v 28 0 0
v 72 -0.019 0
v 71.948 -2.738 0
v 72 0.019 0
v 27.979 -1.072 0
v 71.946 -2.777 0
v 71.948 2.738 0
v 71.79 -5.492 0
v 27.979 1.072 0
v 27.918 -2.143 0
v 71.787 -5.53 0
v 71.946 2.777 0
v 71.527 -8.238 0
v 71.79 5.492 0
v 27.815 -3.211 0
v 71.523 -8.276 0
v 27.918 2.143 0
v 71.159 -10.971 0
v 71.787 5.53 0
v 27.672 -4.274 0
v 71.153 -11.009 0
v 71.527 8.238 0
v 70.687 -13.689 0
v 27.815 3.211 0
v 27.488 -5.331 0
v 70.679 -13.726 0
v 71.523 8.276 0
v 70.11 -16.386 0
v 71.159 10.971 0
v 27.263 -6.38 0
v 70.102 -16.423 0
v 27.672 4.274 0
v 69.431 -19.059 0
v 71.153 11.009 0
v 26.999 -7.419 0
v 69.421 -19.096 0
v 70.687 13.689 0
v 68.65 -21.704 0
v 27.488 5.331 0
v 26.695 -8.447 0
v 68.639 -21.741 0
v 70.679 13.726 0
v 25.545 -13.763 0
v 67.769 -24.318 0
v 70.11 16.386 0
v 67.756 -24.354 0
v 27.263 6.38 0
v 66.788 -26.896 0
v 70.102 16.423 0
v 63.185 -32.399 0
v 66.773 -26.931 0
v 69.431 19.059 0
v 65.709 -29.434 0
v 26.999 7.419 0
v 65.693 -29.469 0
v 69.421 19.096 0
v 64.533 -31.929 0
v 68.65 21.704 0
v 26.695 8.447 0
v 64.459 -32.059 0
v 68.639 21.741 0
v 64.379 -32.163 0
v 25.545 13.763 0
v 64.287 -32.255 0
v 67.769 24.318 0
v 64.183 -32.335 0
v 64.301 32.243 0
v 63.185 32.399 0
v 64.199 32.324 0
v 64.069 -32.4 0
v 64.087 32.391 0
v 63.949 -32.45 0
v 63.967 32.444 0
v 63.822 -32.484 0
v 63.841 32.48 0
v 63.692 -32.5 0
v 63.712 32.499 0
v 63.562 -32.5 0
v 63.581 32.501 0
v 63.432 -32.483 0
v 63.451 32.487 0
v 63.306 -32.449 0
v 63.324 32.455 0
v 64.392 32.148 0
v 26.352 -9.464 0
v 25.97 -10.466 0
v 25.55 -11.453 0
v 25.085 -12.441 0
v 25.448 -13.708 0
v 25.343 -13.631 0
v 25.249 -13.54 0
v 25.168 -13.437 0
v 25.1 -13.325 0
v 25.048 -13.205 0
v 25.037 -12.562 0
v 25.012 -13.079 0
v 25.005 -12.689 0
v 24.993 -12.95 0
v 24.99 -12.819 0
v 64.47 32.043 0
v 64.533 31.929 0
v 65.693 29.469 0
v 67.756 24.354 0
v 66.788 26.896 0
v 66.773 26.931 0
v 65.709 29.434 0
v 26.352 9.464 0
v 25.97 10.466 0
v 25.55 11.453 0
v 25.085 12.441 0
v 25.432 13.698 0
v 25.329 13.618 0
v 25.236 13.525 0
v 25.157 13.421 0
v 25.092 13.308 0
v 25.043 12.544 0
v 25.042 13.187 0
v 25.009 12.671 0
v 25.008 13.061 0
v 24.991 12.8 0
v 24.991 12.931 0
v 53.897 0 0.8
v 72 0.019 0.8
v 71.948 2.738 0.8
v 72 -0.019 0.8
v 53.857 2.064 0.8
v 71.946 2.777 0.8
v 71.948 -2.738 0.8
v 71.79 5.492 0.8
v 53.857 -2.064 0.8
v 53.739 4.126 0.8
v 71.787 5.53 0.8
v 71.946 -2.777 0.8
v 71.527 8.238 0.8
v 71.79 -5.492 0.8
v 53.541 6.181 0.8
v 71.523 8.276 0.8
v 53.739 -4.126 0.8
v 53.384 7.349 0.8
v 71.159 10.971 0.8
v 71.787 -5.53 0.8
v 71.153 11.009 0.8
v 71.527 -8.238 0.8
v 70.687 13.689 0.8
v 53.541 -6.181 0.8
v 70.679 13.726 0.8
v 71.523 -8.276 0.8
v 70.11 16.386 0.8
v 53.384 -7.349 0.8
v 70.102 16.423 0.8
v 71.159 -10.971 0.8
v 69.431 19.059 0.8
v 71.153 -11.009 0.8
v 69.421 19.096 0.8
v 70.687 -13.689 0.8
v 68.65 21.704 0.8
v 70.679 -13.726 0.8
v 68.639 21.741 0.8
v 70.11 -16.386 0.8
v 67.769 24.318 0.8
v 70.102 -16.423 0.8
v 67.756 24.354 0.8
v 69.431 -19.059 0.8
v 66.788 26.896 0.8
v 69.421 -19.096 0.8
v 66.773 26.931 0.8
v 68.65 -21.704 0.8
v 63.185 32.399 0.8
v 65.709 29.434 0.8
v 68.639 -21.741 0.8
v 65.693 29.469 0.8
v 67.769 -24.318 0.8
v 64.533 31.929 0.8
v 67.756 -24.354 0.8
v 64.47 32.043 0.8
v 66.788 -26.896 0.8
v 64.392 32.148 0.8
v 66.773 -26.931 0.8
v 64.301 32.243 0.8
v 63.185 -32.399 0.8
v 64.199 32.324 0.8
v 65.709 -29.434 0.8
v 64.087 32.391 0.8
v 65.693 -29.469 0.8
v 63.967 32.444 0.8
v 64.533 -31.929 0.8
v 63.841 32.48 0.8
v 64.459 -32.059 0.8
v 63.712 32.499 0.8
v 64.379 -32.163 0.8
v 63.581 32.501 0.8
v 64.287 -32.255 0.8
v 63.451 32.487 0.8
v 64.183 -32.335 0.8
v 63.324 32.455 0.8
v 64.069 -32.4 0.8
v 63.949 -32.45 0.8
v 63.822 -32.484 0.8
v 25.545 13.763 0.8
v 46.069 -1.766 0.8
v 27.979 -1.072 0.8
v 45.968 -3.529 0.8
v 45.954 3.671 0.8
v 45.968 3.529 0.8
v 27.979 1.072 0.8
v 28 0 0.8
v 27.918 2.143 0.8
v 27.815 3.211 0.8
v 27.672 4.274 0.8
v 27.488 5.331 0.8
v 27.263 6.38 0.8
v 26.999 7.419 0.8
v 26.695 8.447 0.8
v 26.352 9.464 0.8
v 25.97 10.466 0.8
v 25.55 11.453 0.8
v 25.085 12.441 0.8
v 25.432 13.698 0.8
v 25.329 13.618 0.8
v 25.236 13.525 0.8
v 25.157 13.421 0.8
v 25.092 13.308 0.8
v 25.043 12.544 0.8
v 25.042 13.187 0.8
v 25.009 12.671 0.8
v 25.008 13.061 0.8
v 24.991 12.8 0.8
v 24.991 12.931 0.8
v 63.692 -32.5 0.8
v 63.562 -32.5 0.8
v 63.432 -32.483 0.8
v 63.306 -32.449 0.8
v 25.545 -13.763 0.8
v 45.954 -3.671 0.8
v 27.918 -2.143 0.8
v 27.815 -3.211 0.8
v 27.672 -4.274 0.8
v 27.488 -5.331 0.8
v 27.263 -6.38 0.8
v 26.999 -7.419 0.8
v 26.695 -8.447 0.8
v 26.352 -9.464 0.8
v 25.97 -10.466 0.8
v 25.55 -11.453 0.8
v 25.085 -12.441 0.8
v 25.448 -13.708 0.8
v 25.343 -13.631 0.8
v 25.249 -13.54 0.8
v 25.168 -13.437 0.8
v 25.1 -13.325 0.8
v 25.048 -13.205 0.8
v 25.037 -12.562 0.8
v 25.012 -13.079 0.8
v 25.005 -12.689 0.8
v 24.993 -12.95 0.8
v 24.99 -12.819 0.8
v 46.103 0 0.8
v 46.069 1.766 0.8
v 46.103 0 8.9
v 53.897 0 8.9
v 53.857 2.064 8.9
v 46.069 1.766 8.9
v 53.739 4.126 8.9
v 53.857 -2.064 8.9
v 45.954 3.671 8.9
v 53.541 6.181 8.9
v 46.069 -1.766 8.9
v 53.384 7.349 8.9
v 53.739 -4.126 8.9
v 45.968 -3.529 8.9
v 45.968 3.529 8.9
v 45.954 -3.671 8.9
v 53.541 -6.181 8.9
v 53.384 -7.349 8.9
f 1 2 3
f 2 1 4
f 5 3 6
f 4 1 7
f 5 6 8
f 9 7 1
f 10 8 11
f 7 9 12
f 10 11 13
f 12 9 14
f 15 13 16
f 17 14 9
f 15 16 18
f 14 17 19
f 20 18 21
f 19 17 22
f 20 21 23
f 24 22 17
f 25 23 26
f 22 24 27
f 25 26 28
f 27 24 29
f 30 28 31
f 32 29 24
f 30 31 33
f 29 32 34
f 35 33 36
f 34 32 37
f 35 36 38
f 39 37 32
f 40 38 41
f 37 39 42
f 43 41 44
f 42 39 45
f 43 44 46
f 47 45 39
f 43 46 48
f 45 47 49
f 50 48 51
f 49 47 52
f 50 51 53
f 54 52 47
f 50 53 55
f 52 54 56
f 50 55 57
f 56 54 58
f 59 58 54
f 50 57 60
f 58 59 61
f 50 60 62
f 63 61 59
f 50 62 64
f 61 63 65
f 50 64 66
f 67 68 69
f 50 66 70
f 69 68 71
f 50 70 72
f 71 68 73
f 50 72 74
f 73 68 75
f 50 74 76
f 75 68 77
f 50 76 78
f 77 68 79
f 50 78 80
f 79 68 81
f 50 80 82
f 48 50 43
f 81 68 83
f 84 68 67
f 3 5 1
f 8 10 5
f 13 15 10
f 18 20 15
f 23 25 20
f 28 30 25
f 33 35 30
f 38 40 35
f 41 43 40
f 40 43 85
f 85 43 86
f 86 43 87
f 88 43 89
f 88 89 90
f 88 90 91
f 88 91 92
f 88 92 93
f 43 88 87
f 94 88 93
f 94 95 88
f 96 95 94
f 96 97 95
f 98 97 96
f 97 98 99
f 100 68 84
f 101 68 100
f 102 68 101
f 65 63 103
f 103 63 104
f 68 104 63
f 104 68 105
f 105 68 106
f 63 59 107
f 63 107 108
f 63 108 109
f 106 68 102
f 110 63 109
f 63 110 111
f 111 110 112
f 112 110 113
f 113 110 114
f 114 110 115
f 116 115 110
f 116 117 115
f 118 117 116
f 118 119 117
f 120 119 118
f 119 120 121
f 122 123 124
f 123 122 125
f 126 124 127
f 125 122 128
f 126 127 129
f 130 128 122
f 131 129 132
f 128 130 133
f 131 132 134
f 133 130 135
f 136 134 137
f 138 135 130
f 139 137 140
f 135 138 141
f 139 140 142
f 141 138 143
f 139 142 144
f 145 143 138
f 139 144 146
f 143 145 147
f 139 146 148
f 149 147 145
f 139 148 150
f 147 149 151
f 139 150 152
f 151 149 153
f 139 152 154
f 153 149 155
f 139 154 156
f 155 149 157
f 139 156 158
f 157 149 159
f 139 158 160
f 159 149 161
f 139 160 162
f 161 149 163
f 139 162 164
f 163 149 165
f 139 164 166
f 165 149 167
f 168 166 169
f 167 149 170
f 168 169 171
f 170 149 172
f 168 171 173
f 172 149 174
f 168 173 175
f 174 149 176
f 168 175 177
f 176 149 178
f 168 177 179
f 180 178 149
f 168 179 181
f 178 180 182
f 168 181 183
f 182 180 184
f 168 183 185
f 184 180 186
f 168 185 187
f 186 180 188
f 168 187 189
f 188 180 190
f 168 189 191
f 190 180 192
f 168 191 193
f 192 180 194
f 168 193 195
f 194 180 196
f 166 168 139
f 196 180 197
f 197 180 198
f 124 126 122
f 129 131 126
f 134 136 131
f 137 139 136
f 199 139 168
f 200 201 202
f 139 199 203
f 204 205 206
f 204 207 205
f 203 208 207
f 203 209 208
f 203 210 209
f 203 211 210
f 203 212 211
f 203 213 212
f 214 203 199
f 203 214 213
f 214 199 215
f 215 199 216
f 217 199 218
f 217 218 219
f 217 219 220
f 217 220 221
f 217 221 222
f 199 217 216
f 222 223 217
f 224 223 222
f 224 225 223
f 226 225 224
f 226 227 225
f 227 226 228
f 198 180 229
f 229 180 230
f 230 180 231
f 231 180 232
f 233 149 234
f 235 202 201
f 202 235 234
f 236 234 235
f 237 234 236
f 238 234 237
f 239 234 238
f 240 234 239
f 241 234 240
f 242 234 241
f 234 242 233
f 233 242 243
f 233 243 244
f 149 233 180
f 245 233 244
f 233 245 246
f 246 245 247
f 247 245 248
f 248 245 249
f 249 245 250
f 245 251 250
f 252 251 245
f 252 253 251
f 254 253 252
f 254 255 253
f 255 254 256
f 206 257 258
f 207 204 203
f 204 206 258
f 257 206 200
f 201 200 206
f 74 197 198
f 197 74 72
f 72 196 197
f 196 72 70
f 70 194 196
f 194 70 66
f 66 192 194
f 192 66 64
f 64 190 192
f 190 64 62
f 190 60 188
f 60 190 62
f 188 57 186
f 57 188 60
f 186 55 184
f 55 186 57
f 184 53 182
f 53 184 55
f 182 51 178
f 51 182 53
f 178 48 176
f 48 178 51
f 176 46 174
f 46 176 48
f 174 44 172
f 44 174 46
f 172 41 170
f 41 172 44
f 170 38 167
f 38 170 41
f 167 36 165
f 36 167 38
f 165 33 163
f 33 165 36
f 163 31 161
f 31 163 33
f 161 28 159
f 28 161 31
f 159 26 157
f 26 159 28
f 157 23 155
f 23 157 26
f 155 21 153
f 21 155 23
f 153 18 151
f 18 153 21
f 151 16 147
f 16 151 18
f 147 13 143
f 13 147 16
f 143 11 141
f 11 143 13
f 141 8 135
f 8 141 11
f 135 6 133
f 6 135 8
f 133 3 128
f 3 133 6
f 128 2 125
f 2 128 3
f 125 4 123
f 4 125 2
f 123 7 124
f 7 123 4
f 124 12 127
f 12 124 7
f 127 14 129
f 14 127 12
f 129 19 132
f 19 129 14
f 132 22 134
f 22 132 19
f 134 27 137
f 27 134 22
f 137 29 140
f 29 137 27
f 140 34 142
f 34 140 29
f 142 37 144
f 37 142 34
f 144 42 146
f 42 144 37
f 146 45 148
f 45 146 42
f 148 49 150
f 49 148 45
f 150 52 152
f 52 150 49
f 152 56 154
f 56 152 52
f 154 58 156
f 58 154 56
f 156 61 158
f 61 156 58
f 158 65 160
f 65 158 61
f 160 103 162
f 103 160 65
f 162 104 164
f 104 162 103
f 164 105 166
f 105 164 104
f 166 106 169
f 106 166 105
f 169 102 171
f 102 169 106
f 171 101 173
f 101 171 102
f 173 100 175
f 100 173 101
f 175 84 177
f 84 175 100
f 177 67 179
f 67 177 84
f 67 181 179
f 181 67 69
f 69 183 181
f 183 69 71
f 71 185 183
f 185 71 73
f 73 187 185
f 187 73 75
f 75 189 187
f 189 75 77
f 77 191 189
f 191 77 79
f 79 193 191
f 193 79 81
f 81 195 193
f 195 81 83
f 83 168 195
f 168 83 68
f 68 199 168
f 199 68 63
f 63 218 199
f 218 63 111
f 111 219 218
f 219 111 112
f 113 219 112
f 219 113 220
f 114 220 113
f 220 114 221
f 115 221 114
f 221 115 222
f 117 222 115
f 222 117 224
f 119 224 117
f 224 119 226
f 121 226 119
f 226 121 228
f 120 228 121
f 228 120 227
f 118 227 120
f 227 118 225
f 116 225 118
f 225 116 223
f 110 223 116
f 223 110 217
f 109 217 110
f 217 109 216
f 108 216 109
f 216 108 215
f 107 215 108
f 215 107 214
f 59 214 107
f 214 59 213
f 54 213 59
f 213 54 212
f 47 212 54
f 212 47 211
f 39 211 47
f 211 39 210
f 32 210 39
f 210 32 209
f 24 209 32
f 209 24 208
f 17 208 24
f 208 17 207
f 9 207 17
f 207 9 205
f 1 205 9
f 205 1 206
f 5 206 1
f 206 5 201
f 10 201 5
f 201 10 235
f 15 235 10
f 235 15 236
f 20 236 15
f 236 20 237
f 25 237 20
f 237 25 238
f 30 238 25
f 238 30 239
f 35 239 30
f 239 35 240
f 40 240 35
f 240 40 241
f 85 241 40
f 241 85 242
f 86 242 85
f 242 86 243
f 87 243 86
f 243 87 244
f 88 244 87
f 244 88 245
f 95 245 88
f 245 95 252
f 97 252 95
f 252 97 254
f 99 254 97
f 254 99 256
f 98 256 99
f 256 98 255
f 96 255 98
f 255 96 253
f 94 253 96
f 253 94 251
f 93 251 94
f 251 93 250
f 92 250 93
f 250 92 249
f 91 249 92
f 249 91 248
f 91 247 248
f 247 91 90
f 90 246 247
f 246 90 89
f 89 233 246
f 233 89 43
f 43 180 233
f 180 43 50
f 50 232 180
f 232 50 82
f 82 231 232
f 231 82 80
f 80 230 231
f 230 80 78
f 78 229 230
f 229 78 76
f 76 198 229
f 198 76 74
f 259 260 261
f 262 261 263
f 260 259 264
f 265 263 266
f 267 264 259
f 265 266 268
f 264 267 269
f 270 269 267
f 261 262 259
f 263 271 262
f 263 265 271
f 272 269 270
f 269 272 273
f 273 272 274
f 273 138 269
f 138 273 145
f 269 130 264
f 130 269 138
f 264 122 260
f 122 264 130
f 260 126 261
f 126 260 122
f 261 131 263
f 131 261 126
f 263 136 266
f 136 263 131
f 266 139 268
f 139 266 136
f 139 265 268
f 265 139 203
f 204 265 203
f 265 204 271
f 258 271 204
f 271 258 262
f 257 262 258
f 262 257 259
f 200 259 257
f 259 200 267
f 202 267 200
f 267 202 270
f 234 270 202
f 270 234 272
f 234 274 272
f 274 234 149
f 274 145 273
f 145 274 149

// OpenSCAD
// file: parameters.scad
// =============================================================================
// Gen-BP — nightly 2026-10-07 (physics_scorer, honest magpylib watts)
// Cheapest upgrade of the champion: keep Gen-BL's wound bobbins, stator, gap sleeve, endbells and Ø134 steel, and print only two new rotor carriers — 5.00 mm thick (flush magnet seat, recess 0 instead of 0.10 mm, magnet→wound envelope still 0.50 mm) with the diametric Ø5 assists moved from R40/50/60 to R43/50/57. Modular: the rotor is the only swapped module.
// Clocking 0 deg (magnets N facing S) + D-flat keyed bore + index notch + flip-symmetric hole map.
// Windable 2-piece bobbin; turns = physics_scorer turns_fit; copper only between flanges.
// Steel back-iron: 2× Ø134 × 4.76 mm (3/16") mild-steel discs (steel_backiron_disc.dxf); magnets sit ON the steel
// (through-pockets) -> score with --back-iron.
// =============================================================================
topology            = "dual_rotor";

// --- Wire / winding (physics_scorer winding-fit) -------------------------------
wire_awg            = 26;
wire_od             = 0.45;     // insulated OD mm (bare 0.405)
fill_realistic      = 0.65;     // insulated-wire area / window (DENSE layered wind with a jig; scorer cap 0.65)
turns               = 566;       // = physics_scorer turns_fit (do NOT raise)
coil_former_type    = "bobbin";
coil_core_inset     = 17.10;     // radial copper build: hub = copper boundary inset by this
wind_build_axial    = 0.0;      // nothing proud of the flanges
wind_build_radial   = 0.0;

// --- Bobbin (base + lid) ---------------------------------------------------------
coil_id_r           = 29.00;    // copper boundary sector
coil_od_r           = 71.00;
span_deg            = 52.68;    // = pitch - 2*asin((wall+0.85)/coil_id_r) -> >=1.2 mm stator web
former_web          = 8.10;     // copper height between flanges (TALL copper: steel keeps Bz up)
flange_t            = 0.80;     // >= 0.8 mm FDM wall rule (tall winds push on the flanges)
wall                = 1.00;     // flange lip beyond copper
former_bare_h       = former_web + 2 * flange_t;
coil_envelope_h     = former_bare_h + 2 * wind_build_axial;
tab_w               = 7.0;
tab_len             = 7.0;
tab_h               = former_bare_h / 2;
pin_d               = 1.9;      // 1.75 mm filament locating pin
coil_mount_r        = coil_od_r + 0.2 + 4.0;
lead_y              = 1.6;
lead_slot_w         = 0.9;
lead_groove_d       = 0.6;

// --- Gap -------------------------------------------------------------------------
run_clear           = 0.50;     // rotor face -> flange
gap_spacer_h        = run_clear + wind_build_axial;
m2m                 = coil_envelope_h + 2 * run_clear;   // rotor face to rotor face (= gap_sleeve length)

// --- Stator ----------------------------------------------------------------------
coil_stations       = 6;
bay_clear           = 0.25;
stator_thick        = former_bare_h;                        // bobbins flush both faces
stator_od           = 160;
shaft_clear_stator  = 14.0;     // stator is static; gap sleeve OD 12 spins inside

// --- Rotor(s) --------------------------------------------------------------------
magnet_Br           = 1.43;     // N52
magnet_d_large      = 20.0;
magnet_h_large      = 5.0;      // one O20x5 per pocket
magnet_h_small      = 5.0;      // one O5x5 per pocket
halbach_magnetisation = "diametric"; // O5x5 assist magnets MUST be DIAMETRICALLY magnetised (tangential)
rotor_b_same_axis   = true;     // same-index magnets share one axis: N faces S across the gap
large_pocket_d      = 20.3;
small_pocket_d      = 5.3;
pocket_h            = 5.00;     // THROUGH the carrier: magnet back face sits on the steel disc (FLUSH seat: carrier = magnet height, magnet face level with the rotor face)
large_n             = 8;
R_large             = 50.0;
R_small_inner       = 43.0;
R_small_mid         = 50.0;
R_small_outer       = 57.0;
small_r_list        = [R_small_inner, R_small_mid, R_small_outer];   // O5 pockets between poles
carrier_od          = 134.0;
carrier_thick       = pocket_h;
hub_h               = 12.0;     // > steel_t + insert: radial set-screw clears the steel
hub_od              = 24.0;     // slim hub so the M4 brace rods fit at R~18 inside the coil ring
hub_insert_d        = 4.0;      // M3 heat-set insert, radial, bears on the D-flat
rotor_b_offset_deg  = 0.0;      // CLOCKING: magnets directly opposite
shaft_key           = "dflat";
dflat_depth         = 0.5;      // 8 mm shaft with 0.5 mm flat (7.5 across flat)
index_notch_d       = 3.0;

// --- Steel back-iron (buyable laser-cut) -------------------------------------------
steel_t             = 4.76;      // mild steel thickness (image method ignores it; sized from steel_flux.py so the return path stays well below saturation)
steel_center_hole   = 26.0;     // slips over the rotor hub (OD 24)
steel_od            = carrier_od;   // steel disc OD = rotor carrier OD

// --- Modular MAX interface ----------------------------------------------------------
shaft_bore          = 8.35;
dflat_x             = 4.0 - dflat_depth + (shaft_bore - 8.0) / 2;
bearing_d           = 21.85;
bearing_h           = 7.2;
m3_clear            = 3.5;
bolt_r_inner        = 30.0;     // M3 steel-disc clamp bolts (inside the magnet ring)
bolt_n_inner        = 4;
bolt_inner_angles   = [0, 90, 180, 270];
bolt_r_outer        = 63.0;     // M3 steel-disc clamp bolts (outside the magnet ring)
bolt_outer_angles   = [45, 135, 225, 315];
flange_bolt_r       = 73.0;     // frame rods: OUTSIDE the rotor OD (rotors spin inside them)
flange_bolt_n       = 6;
flange_bolt_offset  = 30.00;    // between coil stations -> never cuts a lead groove/tab
brace_r             = 18.0;
brace_d             = 4.3;      // temporary M4 jack rods (assembly only)
brace_n             = 4;
brace_angles        = [45, 135, 225, 315];          // flip-symmetric

spacer_pad_od       = 14.0;
spacer_pad_id       = m3_clear;
endbell_od          = 160;
endbell_thick       = 8.0;
endbell_shaft_clear = 10.0;
collar_h            = 10.0;
standoff_od         = 9.0;
frame_standoff_h    = run_clear + carrier_thick + hub_h + collar_h + 2.0;
sleeve_od           = 12.0;
plate_max_mm        = 410;

$fn = 64;
// main file
// Gen-BP — bobbin BASE (bottom flange + hub). Print x6, flange down. Wind 26 AWG x 566 t around
// the hub with the LID glued on (coil_lid.stl). Copper lives ONLY between the flanges (no proud winds).
include <parameters.scad>;
$fn = 48;
module sector_2d(r_in, r_out, ang) {
    polygon([
        for (a = [-ang/2 : ang/24 : ang/2]) [r_in*cos(a), r_in*sin(a)],
        for (a = [ang/2 : -ang/24 : -ang/2]) [r_out*cos(a), r_out*sin(a)]
    ]);
}
module footprint_2d() { offset(r=wall) sector_2d(coil_id_r, coil_od_r, span_deg); }
module hub_2d()       { offset(delta=-coil_core_inset) sector_2d(coil_id_r, coil_od_r, span_deg); }

union() {
    linear_extrude(flange_t) footprint_2d();
    translate([0, 0, flange_t - 0.01]) linear_extrude(former_web + 0.01) hub_2d();
}
